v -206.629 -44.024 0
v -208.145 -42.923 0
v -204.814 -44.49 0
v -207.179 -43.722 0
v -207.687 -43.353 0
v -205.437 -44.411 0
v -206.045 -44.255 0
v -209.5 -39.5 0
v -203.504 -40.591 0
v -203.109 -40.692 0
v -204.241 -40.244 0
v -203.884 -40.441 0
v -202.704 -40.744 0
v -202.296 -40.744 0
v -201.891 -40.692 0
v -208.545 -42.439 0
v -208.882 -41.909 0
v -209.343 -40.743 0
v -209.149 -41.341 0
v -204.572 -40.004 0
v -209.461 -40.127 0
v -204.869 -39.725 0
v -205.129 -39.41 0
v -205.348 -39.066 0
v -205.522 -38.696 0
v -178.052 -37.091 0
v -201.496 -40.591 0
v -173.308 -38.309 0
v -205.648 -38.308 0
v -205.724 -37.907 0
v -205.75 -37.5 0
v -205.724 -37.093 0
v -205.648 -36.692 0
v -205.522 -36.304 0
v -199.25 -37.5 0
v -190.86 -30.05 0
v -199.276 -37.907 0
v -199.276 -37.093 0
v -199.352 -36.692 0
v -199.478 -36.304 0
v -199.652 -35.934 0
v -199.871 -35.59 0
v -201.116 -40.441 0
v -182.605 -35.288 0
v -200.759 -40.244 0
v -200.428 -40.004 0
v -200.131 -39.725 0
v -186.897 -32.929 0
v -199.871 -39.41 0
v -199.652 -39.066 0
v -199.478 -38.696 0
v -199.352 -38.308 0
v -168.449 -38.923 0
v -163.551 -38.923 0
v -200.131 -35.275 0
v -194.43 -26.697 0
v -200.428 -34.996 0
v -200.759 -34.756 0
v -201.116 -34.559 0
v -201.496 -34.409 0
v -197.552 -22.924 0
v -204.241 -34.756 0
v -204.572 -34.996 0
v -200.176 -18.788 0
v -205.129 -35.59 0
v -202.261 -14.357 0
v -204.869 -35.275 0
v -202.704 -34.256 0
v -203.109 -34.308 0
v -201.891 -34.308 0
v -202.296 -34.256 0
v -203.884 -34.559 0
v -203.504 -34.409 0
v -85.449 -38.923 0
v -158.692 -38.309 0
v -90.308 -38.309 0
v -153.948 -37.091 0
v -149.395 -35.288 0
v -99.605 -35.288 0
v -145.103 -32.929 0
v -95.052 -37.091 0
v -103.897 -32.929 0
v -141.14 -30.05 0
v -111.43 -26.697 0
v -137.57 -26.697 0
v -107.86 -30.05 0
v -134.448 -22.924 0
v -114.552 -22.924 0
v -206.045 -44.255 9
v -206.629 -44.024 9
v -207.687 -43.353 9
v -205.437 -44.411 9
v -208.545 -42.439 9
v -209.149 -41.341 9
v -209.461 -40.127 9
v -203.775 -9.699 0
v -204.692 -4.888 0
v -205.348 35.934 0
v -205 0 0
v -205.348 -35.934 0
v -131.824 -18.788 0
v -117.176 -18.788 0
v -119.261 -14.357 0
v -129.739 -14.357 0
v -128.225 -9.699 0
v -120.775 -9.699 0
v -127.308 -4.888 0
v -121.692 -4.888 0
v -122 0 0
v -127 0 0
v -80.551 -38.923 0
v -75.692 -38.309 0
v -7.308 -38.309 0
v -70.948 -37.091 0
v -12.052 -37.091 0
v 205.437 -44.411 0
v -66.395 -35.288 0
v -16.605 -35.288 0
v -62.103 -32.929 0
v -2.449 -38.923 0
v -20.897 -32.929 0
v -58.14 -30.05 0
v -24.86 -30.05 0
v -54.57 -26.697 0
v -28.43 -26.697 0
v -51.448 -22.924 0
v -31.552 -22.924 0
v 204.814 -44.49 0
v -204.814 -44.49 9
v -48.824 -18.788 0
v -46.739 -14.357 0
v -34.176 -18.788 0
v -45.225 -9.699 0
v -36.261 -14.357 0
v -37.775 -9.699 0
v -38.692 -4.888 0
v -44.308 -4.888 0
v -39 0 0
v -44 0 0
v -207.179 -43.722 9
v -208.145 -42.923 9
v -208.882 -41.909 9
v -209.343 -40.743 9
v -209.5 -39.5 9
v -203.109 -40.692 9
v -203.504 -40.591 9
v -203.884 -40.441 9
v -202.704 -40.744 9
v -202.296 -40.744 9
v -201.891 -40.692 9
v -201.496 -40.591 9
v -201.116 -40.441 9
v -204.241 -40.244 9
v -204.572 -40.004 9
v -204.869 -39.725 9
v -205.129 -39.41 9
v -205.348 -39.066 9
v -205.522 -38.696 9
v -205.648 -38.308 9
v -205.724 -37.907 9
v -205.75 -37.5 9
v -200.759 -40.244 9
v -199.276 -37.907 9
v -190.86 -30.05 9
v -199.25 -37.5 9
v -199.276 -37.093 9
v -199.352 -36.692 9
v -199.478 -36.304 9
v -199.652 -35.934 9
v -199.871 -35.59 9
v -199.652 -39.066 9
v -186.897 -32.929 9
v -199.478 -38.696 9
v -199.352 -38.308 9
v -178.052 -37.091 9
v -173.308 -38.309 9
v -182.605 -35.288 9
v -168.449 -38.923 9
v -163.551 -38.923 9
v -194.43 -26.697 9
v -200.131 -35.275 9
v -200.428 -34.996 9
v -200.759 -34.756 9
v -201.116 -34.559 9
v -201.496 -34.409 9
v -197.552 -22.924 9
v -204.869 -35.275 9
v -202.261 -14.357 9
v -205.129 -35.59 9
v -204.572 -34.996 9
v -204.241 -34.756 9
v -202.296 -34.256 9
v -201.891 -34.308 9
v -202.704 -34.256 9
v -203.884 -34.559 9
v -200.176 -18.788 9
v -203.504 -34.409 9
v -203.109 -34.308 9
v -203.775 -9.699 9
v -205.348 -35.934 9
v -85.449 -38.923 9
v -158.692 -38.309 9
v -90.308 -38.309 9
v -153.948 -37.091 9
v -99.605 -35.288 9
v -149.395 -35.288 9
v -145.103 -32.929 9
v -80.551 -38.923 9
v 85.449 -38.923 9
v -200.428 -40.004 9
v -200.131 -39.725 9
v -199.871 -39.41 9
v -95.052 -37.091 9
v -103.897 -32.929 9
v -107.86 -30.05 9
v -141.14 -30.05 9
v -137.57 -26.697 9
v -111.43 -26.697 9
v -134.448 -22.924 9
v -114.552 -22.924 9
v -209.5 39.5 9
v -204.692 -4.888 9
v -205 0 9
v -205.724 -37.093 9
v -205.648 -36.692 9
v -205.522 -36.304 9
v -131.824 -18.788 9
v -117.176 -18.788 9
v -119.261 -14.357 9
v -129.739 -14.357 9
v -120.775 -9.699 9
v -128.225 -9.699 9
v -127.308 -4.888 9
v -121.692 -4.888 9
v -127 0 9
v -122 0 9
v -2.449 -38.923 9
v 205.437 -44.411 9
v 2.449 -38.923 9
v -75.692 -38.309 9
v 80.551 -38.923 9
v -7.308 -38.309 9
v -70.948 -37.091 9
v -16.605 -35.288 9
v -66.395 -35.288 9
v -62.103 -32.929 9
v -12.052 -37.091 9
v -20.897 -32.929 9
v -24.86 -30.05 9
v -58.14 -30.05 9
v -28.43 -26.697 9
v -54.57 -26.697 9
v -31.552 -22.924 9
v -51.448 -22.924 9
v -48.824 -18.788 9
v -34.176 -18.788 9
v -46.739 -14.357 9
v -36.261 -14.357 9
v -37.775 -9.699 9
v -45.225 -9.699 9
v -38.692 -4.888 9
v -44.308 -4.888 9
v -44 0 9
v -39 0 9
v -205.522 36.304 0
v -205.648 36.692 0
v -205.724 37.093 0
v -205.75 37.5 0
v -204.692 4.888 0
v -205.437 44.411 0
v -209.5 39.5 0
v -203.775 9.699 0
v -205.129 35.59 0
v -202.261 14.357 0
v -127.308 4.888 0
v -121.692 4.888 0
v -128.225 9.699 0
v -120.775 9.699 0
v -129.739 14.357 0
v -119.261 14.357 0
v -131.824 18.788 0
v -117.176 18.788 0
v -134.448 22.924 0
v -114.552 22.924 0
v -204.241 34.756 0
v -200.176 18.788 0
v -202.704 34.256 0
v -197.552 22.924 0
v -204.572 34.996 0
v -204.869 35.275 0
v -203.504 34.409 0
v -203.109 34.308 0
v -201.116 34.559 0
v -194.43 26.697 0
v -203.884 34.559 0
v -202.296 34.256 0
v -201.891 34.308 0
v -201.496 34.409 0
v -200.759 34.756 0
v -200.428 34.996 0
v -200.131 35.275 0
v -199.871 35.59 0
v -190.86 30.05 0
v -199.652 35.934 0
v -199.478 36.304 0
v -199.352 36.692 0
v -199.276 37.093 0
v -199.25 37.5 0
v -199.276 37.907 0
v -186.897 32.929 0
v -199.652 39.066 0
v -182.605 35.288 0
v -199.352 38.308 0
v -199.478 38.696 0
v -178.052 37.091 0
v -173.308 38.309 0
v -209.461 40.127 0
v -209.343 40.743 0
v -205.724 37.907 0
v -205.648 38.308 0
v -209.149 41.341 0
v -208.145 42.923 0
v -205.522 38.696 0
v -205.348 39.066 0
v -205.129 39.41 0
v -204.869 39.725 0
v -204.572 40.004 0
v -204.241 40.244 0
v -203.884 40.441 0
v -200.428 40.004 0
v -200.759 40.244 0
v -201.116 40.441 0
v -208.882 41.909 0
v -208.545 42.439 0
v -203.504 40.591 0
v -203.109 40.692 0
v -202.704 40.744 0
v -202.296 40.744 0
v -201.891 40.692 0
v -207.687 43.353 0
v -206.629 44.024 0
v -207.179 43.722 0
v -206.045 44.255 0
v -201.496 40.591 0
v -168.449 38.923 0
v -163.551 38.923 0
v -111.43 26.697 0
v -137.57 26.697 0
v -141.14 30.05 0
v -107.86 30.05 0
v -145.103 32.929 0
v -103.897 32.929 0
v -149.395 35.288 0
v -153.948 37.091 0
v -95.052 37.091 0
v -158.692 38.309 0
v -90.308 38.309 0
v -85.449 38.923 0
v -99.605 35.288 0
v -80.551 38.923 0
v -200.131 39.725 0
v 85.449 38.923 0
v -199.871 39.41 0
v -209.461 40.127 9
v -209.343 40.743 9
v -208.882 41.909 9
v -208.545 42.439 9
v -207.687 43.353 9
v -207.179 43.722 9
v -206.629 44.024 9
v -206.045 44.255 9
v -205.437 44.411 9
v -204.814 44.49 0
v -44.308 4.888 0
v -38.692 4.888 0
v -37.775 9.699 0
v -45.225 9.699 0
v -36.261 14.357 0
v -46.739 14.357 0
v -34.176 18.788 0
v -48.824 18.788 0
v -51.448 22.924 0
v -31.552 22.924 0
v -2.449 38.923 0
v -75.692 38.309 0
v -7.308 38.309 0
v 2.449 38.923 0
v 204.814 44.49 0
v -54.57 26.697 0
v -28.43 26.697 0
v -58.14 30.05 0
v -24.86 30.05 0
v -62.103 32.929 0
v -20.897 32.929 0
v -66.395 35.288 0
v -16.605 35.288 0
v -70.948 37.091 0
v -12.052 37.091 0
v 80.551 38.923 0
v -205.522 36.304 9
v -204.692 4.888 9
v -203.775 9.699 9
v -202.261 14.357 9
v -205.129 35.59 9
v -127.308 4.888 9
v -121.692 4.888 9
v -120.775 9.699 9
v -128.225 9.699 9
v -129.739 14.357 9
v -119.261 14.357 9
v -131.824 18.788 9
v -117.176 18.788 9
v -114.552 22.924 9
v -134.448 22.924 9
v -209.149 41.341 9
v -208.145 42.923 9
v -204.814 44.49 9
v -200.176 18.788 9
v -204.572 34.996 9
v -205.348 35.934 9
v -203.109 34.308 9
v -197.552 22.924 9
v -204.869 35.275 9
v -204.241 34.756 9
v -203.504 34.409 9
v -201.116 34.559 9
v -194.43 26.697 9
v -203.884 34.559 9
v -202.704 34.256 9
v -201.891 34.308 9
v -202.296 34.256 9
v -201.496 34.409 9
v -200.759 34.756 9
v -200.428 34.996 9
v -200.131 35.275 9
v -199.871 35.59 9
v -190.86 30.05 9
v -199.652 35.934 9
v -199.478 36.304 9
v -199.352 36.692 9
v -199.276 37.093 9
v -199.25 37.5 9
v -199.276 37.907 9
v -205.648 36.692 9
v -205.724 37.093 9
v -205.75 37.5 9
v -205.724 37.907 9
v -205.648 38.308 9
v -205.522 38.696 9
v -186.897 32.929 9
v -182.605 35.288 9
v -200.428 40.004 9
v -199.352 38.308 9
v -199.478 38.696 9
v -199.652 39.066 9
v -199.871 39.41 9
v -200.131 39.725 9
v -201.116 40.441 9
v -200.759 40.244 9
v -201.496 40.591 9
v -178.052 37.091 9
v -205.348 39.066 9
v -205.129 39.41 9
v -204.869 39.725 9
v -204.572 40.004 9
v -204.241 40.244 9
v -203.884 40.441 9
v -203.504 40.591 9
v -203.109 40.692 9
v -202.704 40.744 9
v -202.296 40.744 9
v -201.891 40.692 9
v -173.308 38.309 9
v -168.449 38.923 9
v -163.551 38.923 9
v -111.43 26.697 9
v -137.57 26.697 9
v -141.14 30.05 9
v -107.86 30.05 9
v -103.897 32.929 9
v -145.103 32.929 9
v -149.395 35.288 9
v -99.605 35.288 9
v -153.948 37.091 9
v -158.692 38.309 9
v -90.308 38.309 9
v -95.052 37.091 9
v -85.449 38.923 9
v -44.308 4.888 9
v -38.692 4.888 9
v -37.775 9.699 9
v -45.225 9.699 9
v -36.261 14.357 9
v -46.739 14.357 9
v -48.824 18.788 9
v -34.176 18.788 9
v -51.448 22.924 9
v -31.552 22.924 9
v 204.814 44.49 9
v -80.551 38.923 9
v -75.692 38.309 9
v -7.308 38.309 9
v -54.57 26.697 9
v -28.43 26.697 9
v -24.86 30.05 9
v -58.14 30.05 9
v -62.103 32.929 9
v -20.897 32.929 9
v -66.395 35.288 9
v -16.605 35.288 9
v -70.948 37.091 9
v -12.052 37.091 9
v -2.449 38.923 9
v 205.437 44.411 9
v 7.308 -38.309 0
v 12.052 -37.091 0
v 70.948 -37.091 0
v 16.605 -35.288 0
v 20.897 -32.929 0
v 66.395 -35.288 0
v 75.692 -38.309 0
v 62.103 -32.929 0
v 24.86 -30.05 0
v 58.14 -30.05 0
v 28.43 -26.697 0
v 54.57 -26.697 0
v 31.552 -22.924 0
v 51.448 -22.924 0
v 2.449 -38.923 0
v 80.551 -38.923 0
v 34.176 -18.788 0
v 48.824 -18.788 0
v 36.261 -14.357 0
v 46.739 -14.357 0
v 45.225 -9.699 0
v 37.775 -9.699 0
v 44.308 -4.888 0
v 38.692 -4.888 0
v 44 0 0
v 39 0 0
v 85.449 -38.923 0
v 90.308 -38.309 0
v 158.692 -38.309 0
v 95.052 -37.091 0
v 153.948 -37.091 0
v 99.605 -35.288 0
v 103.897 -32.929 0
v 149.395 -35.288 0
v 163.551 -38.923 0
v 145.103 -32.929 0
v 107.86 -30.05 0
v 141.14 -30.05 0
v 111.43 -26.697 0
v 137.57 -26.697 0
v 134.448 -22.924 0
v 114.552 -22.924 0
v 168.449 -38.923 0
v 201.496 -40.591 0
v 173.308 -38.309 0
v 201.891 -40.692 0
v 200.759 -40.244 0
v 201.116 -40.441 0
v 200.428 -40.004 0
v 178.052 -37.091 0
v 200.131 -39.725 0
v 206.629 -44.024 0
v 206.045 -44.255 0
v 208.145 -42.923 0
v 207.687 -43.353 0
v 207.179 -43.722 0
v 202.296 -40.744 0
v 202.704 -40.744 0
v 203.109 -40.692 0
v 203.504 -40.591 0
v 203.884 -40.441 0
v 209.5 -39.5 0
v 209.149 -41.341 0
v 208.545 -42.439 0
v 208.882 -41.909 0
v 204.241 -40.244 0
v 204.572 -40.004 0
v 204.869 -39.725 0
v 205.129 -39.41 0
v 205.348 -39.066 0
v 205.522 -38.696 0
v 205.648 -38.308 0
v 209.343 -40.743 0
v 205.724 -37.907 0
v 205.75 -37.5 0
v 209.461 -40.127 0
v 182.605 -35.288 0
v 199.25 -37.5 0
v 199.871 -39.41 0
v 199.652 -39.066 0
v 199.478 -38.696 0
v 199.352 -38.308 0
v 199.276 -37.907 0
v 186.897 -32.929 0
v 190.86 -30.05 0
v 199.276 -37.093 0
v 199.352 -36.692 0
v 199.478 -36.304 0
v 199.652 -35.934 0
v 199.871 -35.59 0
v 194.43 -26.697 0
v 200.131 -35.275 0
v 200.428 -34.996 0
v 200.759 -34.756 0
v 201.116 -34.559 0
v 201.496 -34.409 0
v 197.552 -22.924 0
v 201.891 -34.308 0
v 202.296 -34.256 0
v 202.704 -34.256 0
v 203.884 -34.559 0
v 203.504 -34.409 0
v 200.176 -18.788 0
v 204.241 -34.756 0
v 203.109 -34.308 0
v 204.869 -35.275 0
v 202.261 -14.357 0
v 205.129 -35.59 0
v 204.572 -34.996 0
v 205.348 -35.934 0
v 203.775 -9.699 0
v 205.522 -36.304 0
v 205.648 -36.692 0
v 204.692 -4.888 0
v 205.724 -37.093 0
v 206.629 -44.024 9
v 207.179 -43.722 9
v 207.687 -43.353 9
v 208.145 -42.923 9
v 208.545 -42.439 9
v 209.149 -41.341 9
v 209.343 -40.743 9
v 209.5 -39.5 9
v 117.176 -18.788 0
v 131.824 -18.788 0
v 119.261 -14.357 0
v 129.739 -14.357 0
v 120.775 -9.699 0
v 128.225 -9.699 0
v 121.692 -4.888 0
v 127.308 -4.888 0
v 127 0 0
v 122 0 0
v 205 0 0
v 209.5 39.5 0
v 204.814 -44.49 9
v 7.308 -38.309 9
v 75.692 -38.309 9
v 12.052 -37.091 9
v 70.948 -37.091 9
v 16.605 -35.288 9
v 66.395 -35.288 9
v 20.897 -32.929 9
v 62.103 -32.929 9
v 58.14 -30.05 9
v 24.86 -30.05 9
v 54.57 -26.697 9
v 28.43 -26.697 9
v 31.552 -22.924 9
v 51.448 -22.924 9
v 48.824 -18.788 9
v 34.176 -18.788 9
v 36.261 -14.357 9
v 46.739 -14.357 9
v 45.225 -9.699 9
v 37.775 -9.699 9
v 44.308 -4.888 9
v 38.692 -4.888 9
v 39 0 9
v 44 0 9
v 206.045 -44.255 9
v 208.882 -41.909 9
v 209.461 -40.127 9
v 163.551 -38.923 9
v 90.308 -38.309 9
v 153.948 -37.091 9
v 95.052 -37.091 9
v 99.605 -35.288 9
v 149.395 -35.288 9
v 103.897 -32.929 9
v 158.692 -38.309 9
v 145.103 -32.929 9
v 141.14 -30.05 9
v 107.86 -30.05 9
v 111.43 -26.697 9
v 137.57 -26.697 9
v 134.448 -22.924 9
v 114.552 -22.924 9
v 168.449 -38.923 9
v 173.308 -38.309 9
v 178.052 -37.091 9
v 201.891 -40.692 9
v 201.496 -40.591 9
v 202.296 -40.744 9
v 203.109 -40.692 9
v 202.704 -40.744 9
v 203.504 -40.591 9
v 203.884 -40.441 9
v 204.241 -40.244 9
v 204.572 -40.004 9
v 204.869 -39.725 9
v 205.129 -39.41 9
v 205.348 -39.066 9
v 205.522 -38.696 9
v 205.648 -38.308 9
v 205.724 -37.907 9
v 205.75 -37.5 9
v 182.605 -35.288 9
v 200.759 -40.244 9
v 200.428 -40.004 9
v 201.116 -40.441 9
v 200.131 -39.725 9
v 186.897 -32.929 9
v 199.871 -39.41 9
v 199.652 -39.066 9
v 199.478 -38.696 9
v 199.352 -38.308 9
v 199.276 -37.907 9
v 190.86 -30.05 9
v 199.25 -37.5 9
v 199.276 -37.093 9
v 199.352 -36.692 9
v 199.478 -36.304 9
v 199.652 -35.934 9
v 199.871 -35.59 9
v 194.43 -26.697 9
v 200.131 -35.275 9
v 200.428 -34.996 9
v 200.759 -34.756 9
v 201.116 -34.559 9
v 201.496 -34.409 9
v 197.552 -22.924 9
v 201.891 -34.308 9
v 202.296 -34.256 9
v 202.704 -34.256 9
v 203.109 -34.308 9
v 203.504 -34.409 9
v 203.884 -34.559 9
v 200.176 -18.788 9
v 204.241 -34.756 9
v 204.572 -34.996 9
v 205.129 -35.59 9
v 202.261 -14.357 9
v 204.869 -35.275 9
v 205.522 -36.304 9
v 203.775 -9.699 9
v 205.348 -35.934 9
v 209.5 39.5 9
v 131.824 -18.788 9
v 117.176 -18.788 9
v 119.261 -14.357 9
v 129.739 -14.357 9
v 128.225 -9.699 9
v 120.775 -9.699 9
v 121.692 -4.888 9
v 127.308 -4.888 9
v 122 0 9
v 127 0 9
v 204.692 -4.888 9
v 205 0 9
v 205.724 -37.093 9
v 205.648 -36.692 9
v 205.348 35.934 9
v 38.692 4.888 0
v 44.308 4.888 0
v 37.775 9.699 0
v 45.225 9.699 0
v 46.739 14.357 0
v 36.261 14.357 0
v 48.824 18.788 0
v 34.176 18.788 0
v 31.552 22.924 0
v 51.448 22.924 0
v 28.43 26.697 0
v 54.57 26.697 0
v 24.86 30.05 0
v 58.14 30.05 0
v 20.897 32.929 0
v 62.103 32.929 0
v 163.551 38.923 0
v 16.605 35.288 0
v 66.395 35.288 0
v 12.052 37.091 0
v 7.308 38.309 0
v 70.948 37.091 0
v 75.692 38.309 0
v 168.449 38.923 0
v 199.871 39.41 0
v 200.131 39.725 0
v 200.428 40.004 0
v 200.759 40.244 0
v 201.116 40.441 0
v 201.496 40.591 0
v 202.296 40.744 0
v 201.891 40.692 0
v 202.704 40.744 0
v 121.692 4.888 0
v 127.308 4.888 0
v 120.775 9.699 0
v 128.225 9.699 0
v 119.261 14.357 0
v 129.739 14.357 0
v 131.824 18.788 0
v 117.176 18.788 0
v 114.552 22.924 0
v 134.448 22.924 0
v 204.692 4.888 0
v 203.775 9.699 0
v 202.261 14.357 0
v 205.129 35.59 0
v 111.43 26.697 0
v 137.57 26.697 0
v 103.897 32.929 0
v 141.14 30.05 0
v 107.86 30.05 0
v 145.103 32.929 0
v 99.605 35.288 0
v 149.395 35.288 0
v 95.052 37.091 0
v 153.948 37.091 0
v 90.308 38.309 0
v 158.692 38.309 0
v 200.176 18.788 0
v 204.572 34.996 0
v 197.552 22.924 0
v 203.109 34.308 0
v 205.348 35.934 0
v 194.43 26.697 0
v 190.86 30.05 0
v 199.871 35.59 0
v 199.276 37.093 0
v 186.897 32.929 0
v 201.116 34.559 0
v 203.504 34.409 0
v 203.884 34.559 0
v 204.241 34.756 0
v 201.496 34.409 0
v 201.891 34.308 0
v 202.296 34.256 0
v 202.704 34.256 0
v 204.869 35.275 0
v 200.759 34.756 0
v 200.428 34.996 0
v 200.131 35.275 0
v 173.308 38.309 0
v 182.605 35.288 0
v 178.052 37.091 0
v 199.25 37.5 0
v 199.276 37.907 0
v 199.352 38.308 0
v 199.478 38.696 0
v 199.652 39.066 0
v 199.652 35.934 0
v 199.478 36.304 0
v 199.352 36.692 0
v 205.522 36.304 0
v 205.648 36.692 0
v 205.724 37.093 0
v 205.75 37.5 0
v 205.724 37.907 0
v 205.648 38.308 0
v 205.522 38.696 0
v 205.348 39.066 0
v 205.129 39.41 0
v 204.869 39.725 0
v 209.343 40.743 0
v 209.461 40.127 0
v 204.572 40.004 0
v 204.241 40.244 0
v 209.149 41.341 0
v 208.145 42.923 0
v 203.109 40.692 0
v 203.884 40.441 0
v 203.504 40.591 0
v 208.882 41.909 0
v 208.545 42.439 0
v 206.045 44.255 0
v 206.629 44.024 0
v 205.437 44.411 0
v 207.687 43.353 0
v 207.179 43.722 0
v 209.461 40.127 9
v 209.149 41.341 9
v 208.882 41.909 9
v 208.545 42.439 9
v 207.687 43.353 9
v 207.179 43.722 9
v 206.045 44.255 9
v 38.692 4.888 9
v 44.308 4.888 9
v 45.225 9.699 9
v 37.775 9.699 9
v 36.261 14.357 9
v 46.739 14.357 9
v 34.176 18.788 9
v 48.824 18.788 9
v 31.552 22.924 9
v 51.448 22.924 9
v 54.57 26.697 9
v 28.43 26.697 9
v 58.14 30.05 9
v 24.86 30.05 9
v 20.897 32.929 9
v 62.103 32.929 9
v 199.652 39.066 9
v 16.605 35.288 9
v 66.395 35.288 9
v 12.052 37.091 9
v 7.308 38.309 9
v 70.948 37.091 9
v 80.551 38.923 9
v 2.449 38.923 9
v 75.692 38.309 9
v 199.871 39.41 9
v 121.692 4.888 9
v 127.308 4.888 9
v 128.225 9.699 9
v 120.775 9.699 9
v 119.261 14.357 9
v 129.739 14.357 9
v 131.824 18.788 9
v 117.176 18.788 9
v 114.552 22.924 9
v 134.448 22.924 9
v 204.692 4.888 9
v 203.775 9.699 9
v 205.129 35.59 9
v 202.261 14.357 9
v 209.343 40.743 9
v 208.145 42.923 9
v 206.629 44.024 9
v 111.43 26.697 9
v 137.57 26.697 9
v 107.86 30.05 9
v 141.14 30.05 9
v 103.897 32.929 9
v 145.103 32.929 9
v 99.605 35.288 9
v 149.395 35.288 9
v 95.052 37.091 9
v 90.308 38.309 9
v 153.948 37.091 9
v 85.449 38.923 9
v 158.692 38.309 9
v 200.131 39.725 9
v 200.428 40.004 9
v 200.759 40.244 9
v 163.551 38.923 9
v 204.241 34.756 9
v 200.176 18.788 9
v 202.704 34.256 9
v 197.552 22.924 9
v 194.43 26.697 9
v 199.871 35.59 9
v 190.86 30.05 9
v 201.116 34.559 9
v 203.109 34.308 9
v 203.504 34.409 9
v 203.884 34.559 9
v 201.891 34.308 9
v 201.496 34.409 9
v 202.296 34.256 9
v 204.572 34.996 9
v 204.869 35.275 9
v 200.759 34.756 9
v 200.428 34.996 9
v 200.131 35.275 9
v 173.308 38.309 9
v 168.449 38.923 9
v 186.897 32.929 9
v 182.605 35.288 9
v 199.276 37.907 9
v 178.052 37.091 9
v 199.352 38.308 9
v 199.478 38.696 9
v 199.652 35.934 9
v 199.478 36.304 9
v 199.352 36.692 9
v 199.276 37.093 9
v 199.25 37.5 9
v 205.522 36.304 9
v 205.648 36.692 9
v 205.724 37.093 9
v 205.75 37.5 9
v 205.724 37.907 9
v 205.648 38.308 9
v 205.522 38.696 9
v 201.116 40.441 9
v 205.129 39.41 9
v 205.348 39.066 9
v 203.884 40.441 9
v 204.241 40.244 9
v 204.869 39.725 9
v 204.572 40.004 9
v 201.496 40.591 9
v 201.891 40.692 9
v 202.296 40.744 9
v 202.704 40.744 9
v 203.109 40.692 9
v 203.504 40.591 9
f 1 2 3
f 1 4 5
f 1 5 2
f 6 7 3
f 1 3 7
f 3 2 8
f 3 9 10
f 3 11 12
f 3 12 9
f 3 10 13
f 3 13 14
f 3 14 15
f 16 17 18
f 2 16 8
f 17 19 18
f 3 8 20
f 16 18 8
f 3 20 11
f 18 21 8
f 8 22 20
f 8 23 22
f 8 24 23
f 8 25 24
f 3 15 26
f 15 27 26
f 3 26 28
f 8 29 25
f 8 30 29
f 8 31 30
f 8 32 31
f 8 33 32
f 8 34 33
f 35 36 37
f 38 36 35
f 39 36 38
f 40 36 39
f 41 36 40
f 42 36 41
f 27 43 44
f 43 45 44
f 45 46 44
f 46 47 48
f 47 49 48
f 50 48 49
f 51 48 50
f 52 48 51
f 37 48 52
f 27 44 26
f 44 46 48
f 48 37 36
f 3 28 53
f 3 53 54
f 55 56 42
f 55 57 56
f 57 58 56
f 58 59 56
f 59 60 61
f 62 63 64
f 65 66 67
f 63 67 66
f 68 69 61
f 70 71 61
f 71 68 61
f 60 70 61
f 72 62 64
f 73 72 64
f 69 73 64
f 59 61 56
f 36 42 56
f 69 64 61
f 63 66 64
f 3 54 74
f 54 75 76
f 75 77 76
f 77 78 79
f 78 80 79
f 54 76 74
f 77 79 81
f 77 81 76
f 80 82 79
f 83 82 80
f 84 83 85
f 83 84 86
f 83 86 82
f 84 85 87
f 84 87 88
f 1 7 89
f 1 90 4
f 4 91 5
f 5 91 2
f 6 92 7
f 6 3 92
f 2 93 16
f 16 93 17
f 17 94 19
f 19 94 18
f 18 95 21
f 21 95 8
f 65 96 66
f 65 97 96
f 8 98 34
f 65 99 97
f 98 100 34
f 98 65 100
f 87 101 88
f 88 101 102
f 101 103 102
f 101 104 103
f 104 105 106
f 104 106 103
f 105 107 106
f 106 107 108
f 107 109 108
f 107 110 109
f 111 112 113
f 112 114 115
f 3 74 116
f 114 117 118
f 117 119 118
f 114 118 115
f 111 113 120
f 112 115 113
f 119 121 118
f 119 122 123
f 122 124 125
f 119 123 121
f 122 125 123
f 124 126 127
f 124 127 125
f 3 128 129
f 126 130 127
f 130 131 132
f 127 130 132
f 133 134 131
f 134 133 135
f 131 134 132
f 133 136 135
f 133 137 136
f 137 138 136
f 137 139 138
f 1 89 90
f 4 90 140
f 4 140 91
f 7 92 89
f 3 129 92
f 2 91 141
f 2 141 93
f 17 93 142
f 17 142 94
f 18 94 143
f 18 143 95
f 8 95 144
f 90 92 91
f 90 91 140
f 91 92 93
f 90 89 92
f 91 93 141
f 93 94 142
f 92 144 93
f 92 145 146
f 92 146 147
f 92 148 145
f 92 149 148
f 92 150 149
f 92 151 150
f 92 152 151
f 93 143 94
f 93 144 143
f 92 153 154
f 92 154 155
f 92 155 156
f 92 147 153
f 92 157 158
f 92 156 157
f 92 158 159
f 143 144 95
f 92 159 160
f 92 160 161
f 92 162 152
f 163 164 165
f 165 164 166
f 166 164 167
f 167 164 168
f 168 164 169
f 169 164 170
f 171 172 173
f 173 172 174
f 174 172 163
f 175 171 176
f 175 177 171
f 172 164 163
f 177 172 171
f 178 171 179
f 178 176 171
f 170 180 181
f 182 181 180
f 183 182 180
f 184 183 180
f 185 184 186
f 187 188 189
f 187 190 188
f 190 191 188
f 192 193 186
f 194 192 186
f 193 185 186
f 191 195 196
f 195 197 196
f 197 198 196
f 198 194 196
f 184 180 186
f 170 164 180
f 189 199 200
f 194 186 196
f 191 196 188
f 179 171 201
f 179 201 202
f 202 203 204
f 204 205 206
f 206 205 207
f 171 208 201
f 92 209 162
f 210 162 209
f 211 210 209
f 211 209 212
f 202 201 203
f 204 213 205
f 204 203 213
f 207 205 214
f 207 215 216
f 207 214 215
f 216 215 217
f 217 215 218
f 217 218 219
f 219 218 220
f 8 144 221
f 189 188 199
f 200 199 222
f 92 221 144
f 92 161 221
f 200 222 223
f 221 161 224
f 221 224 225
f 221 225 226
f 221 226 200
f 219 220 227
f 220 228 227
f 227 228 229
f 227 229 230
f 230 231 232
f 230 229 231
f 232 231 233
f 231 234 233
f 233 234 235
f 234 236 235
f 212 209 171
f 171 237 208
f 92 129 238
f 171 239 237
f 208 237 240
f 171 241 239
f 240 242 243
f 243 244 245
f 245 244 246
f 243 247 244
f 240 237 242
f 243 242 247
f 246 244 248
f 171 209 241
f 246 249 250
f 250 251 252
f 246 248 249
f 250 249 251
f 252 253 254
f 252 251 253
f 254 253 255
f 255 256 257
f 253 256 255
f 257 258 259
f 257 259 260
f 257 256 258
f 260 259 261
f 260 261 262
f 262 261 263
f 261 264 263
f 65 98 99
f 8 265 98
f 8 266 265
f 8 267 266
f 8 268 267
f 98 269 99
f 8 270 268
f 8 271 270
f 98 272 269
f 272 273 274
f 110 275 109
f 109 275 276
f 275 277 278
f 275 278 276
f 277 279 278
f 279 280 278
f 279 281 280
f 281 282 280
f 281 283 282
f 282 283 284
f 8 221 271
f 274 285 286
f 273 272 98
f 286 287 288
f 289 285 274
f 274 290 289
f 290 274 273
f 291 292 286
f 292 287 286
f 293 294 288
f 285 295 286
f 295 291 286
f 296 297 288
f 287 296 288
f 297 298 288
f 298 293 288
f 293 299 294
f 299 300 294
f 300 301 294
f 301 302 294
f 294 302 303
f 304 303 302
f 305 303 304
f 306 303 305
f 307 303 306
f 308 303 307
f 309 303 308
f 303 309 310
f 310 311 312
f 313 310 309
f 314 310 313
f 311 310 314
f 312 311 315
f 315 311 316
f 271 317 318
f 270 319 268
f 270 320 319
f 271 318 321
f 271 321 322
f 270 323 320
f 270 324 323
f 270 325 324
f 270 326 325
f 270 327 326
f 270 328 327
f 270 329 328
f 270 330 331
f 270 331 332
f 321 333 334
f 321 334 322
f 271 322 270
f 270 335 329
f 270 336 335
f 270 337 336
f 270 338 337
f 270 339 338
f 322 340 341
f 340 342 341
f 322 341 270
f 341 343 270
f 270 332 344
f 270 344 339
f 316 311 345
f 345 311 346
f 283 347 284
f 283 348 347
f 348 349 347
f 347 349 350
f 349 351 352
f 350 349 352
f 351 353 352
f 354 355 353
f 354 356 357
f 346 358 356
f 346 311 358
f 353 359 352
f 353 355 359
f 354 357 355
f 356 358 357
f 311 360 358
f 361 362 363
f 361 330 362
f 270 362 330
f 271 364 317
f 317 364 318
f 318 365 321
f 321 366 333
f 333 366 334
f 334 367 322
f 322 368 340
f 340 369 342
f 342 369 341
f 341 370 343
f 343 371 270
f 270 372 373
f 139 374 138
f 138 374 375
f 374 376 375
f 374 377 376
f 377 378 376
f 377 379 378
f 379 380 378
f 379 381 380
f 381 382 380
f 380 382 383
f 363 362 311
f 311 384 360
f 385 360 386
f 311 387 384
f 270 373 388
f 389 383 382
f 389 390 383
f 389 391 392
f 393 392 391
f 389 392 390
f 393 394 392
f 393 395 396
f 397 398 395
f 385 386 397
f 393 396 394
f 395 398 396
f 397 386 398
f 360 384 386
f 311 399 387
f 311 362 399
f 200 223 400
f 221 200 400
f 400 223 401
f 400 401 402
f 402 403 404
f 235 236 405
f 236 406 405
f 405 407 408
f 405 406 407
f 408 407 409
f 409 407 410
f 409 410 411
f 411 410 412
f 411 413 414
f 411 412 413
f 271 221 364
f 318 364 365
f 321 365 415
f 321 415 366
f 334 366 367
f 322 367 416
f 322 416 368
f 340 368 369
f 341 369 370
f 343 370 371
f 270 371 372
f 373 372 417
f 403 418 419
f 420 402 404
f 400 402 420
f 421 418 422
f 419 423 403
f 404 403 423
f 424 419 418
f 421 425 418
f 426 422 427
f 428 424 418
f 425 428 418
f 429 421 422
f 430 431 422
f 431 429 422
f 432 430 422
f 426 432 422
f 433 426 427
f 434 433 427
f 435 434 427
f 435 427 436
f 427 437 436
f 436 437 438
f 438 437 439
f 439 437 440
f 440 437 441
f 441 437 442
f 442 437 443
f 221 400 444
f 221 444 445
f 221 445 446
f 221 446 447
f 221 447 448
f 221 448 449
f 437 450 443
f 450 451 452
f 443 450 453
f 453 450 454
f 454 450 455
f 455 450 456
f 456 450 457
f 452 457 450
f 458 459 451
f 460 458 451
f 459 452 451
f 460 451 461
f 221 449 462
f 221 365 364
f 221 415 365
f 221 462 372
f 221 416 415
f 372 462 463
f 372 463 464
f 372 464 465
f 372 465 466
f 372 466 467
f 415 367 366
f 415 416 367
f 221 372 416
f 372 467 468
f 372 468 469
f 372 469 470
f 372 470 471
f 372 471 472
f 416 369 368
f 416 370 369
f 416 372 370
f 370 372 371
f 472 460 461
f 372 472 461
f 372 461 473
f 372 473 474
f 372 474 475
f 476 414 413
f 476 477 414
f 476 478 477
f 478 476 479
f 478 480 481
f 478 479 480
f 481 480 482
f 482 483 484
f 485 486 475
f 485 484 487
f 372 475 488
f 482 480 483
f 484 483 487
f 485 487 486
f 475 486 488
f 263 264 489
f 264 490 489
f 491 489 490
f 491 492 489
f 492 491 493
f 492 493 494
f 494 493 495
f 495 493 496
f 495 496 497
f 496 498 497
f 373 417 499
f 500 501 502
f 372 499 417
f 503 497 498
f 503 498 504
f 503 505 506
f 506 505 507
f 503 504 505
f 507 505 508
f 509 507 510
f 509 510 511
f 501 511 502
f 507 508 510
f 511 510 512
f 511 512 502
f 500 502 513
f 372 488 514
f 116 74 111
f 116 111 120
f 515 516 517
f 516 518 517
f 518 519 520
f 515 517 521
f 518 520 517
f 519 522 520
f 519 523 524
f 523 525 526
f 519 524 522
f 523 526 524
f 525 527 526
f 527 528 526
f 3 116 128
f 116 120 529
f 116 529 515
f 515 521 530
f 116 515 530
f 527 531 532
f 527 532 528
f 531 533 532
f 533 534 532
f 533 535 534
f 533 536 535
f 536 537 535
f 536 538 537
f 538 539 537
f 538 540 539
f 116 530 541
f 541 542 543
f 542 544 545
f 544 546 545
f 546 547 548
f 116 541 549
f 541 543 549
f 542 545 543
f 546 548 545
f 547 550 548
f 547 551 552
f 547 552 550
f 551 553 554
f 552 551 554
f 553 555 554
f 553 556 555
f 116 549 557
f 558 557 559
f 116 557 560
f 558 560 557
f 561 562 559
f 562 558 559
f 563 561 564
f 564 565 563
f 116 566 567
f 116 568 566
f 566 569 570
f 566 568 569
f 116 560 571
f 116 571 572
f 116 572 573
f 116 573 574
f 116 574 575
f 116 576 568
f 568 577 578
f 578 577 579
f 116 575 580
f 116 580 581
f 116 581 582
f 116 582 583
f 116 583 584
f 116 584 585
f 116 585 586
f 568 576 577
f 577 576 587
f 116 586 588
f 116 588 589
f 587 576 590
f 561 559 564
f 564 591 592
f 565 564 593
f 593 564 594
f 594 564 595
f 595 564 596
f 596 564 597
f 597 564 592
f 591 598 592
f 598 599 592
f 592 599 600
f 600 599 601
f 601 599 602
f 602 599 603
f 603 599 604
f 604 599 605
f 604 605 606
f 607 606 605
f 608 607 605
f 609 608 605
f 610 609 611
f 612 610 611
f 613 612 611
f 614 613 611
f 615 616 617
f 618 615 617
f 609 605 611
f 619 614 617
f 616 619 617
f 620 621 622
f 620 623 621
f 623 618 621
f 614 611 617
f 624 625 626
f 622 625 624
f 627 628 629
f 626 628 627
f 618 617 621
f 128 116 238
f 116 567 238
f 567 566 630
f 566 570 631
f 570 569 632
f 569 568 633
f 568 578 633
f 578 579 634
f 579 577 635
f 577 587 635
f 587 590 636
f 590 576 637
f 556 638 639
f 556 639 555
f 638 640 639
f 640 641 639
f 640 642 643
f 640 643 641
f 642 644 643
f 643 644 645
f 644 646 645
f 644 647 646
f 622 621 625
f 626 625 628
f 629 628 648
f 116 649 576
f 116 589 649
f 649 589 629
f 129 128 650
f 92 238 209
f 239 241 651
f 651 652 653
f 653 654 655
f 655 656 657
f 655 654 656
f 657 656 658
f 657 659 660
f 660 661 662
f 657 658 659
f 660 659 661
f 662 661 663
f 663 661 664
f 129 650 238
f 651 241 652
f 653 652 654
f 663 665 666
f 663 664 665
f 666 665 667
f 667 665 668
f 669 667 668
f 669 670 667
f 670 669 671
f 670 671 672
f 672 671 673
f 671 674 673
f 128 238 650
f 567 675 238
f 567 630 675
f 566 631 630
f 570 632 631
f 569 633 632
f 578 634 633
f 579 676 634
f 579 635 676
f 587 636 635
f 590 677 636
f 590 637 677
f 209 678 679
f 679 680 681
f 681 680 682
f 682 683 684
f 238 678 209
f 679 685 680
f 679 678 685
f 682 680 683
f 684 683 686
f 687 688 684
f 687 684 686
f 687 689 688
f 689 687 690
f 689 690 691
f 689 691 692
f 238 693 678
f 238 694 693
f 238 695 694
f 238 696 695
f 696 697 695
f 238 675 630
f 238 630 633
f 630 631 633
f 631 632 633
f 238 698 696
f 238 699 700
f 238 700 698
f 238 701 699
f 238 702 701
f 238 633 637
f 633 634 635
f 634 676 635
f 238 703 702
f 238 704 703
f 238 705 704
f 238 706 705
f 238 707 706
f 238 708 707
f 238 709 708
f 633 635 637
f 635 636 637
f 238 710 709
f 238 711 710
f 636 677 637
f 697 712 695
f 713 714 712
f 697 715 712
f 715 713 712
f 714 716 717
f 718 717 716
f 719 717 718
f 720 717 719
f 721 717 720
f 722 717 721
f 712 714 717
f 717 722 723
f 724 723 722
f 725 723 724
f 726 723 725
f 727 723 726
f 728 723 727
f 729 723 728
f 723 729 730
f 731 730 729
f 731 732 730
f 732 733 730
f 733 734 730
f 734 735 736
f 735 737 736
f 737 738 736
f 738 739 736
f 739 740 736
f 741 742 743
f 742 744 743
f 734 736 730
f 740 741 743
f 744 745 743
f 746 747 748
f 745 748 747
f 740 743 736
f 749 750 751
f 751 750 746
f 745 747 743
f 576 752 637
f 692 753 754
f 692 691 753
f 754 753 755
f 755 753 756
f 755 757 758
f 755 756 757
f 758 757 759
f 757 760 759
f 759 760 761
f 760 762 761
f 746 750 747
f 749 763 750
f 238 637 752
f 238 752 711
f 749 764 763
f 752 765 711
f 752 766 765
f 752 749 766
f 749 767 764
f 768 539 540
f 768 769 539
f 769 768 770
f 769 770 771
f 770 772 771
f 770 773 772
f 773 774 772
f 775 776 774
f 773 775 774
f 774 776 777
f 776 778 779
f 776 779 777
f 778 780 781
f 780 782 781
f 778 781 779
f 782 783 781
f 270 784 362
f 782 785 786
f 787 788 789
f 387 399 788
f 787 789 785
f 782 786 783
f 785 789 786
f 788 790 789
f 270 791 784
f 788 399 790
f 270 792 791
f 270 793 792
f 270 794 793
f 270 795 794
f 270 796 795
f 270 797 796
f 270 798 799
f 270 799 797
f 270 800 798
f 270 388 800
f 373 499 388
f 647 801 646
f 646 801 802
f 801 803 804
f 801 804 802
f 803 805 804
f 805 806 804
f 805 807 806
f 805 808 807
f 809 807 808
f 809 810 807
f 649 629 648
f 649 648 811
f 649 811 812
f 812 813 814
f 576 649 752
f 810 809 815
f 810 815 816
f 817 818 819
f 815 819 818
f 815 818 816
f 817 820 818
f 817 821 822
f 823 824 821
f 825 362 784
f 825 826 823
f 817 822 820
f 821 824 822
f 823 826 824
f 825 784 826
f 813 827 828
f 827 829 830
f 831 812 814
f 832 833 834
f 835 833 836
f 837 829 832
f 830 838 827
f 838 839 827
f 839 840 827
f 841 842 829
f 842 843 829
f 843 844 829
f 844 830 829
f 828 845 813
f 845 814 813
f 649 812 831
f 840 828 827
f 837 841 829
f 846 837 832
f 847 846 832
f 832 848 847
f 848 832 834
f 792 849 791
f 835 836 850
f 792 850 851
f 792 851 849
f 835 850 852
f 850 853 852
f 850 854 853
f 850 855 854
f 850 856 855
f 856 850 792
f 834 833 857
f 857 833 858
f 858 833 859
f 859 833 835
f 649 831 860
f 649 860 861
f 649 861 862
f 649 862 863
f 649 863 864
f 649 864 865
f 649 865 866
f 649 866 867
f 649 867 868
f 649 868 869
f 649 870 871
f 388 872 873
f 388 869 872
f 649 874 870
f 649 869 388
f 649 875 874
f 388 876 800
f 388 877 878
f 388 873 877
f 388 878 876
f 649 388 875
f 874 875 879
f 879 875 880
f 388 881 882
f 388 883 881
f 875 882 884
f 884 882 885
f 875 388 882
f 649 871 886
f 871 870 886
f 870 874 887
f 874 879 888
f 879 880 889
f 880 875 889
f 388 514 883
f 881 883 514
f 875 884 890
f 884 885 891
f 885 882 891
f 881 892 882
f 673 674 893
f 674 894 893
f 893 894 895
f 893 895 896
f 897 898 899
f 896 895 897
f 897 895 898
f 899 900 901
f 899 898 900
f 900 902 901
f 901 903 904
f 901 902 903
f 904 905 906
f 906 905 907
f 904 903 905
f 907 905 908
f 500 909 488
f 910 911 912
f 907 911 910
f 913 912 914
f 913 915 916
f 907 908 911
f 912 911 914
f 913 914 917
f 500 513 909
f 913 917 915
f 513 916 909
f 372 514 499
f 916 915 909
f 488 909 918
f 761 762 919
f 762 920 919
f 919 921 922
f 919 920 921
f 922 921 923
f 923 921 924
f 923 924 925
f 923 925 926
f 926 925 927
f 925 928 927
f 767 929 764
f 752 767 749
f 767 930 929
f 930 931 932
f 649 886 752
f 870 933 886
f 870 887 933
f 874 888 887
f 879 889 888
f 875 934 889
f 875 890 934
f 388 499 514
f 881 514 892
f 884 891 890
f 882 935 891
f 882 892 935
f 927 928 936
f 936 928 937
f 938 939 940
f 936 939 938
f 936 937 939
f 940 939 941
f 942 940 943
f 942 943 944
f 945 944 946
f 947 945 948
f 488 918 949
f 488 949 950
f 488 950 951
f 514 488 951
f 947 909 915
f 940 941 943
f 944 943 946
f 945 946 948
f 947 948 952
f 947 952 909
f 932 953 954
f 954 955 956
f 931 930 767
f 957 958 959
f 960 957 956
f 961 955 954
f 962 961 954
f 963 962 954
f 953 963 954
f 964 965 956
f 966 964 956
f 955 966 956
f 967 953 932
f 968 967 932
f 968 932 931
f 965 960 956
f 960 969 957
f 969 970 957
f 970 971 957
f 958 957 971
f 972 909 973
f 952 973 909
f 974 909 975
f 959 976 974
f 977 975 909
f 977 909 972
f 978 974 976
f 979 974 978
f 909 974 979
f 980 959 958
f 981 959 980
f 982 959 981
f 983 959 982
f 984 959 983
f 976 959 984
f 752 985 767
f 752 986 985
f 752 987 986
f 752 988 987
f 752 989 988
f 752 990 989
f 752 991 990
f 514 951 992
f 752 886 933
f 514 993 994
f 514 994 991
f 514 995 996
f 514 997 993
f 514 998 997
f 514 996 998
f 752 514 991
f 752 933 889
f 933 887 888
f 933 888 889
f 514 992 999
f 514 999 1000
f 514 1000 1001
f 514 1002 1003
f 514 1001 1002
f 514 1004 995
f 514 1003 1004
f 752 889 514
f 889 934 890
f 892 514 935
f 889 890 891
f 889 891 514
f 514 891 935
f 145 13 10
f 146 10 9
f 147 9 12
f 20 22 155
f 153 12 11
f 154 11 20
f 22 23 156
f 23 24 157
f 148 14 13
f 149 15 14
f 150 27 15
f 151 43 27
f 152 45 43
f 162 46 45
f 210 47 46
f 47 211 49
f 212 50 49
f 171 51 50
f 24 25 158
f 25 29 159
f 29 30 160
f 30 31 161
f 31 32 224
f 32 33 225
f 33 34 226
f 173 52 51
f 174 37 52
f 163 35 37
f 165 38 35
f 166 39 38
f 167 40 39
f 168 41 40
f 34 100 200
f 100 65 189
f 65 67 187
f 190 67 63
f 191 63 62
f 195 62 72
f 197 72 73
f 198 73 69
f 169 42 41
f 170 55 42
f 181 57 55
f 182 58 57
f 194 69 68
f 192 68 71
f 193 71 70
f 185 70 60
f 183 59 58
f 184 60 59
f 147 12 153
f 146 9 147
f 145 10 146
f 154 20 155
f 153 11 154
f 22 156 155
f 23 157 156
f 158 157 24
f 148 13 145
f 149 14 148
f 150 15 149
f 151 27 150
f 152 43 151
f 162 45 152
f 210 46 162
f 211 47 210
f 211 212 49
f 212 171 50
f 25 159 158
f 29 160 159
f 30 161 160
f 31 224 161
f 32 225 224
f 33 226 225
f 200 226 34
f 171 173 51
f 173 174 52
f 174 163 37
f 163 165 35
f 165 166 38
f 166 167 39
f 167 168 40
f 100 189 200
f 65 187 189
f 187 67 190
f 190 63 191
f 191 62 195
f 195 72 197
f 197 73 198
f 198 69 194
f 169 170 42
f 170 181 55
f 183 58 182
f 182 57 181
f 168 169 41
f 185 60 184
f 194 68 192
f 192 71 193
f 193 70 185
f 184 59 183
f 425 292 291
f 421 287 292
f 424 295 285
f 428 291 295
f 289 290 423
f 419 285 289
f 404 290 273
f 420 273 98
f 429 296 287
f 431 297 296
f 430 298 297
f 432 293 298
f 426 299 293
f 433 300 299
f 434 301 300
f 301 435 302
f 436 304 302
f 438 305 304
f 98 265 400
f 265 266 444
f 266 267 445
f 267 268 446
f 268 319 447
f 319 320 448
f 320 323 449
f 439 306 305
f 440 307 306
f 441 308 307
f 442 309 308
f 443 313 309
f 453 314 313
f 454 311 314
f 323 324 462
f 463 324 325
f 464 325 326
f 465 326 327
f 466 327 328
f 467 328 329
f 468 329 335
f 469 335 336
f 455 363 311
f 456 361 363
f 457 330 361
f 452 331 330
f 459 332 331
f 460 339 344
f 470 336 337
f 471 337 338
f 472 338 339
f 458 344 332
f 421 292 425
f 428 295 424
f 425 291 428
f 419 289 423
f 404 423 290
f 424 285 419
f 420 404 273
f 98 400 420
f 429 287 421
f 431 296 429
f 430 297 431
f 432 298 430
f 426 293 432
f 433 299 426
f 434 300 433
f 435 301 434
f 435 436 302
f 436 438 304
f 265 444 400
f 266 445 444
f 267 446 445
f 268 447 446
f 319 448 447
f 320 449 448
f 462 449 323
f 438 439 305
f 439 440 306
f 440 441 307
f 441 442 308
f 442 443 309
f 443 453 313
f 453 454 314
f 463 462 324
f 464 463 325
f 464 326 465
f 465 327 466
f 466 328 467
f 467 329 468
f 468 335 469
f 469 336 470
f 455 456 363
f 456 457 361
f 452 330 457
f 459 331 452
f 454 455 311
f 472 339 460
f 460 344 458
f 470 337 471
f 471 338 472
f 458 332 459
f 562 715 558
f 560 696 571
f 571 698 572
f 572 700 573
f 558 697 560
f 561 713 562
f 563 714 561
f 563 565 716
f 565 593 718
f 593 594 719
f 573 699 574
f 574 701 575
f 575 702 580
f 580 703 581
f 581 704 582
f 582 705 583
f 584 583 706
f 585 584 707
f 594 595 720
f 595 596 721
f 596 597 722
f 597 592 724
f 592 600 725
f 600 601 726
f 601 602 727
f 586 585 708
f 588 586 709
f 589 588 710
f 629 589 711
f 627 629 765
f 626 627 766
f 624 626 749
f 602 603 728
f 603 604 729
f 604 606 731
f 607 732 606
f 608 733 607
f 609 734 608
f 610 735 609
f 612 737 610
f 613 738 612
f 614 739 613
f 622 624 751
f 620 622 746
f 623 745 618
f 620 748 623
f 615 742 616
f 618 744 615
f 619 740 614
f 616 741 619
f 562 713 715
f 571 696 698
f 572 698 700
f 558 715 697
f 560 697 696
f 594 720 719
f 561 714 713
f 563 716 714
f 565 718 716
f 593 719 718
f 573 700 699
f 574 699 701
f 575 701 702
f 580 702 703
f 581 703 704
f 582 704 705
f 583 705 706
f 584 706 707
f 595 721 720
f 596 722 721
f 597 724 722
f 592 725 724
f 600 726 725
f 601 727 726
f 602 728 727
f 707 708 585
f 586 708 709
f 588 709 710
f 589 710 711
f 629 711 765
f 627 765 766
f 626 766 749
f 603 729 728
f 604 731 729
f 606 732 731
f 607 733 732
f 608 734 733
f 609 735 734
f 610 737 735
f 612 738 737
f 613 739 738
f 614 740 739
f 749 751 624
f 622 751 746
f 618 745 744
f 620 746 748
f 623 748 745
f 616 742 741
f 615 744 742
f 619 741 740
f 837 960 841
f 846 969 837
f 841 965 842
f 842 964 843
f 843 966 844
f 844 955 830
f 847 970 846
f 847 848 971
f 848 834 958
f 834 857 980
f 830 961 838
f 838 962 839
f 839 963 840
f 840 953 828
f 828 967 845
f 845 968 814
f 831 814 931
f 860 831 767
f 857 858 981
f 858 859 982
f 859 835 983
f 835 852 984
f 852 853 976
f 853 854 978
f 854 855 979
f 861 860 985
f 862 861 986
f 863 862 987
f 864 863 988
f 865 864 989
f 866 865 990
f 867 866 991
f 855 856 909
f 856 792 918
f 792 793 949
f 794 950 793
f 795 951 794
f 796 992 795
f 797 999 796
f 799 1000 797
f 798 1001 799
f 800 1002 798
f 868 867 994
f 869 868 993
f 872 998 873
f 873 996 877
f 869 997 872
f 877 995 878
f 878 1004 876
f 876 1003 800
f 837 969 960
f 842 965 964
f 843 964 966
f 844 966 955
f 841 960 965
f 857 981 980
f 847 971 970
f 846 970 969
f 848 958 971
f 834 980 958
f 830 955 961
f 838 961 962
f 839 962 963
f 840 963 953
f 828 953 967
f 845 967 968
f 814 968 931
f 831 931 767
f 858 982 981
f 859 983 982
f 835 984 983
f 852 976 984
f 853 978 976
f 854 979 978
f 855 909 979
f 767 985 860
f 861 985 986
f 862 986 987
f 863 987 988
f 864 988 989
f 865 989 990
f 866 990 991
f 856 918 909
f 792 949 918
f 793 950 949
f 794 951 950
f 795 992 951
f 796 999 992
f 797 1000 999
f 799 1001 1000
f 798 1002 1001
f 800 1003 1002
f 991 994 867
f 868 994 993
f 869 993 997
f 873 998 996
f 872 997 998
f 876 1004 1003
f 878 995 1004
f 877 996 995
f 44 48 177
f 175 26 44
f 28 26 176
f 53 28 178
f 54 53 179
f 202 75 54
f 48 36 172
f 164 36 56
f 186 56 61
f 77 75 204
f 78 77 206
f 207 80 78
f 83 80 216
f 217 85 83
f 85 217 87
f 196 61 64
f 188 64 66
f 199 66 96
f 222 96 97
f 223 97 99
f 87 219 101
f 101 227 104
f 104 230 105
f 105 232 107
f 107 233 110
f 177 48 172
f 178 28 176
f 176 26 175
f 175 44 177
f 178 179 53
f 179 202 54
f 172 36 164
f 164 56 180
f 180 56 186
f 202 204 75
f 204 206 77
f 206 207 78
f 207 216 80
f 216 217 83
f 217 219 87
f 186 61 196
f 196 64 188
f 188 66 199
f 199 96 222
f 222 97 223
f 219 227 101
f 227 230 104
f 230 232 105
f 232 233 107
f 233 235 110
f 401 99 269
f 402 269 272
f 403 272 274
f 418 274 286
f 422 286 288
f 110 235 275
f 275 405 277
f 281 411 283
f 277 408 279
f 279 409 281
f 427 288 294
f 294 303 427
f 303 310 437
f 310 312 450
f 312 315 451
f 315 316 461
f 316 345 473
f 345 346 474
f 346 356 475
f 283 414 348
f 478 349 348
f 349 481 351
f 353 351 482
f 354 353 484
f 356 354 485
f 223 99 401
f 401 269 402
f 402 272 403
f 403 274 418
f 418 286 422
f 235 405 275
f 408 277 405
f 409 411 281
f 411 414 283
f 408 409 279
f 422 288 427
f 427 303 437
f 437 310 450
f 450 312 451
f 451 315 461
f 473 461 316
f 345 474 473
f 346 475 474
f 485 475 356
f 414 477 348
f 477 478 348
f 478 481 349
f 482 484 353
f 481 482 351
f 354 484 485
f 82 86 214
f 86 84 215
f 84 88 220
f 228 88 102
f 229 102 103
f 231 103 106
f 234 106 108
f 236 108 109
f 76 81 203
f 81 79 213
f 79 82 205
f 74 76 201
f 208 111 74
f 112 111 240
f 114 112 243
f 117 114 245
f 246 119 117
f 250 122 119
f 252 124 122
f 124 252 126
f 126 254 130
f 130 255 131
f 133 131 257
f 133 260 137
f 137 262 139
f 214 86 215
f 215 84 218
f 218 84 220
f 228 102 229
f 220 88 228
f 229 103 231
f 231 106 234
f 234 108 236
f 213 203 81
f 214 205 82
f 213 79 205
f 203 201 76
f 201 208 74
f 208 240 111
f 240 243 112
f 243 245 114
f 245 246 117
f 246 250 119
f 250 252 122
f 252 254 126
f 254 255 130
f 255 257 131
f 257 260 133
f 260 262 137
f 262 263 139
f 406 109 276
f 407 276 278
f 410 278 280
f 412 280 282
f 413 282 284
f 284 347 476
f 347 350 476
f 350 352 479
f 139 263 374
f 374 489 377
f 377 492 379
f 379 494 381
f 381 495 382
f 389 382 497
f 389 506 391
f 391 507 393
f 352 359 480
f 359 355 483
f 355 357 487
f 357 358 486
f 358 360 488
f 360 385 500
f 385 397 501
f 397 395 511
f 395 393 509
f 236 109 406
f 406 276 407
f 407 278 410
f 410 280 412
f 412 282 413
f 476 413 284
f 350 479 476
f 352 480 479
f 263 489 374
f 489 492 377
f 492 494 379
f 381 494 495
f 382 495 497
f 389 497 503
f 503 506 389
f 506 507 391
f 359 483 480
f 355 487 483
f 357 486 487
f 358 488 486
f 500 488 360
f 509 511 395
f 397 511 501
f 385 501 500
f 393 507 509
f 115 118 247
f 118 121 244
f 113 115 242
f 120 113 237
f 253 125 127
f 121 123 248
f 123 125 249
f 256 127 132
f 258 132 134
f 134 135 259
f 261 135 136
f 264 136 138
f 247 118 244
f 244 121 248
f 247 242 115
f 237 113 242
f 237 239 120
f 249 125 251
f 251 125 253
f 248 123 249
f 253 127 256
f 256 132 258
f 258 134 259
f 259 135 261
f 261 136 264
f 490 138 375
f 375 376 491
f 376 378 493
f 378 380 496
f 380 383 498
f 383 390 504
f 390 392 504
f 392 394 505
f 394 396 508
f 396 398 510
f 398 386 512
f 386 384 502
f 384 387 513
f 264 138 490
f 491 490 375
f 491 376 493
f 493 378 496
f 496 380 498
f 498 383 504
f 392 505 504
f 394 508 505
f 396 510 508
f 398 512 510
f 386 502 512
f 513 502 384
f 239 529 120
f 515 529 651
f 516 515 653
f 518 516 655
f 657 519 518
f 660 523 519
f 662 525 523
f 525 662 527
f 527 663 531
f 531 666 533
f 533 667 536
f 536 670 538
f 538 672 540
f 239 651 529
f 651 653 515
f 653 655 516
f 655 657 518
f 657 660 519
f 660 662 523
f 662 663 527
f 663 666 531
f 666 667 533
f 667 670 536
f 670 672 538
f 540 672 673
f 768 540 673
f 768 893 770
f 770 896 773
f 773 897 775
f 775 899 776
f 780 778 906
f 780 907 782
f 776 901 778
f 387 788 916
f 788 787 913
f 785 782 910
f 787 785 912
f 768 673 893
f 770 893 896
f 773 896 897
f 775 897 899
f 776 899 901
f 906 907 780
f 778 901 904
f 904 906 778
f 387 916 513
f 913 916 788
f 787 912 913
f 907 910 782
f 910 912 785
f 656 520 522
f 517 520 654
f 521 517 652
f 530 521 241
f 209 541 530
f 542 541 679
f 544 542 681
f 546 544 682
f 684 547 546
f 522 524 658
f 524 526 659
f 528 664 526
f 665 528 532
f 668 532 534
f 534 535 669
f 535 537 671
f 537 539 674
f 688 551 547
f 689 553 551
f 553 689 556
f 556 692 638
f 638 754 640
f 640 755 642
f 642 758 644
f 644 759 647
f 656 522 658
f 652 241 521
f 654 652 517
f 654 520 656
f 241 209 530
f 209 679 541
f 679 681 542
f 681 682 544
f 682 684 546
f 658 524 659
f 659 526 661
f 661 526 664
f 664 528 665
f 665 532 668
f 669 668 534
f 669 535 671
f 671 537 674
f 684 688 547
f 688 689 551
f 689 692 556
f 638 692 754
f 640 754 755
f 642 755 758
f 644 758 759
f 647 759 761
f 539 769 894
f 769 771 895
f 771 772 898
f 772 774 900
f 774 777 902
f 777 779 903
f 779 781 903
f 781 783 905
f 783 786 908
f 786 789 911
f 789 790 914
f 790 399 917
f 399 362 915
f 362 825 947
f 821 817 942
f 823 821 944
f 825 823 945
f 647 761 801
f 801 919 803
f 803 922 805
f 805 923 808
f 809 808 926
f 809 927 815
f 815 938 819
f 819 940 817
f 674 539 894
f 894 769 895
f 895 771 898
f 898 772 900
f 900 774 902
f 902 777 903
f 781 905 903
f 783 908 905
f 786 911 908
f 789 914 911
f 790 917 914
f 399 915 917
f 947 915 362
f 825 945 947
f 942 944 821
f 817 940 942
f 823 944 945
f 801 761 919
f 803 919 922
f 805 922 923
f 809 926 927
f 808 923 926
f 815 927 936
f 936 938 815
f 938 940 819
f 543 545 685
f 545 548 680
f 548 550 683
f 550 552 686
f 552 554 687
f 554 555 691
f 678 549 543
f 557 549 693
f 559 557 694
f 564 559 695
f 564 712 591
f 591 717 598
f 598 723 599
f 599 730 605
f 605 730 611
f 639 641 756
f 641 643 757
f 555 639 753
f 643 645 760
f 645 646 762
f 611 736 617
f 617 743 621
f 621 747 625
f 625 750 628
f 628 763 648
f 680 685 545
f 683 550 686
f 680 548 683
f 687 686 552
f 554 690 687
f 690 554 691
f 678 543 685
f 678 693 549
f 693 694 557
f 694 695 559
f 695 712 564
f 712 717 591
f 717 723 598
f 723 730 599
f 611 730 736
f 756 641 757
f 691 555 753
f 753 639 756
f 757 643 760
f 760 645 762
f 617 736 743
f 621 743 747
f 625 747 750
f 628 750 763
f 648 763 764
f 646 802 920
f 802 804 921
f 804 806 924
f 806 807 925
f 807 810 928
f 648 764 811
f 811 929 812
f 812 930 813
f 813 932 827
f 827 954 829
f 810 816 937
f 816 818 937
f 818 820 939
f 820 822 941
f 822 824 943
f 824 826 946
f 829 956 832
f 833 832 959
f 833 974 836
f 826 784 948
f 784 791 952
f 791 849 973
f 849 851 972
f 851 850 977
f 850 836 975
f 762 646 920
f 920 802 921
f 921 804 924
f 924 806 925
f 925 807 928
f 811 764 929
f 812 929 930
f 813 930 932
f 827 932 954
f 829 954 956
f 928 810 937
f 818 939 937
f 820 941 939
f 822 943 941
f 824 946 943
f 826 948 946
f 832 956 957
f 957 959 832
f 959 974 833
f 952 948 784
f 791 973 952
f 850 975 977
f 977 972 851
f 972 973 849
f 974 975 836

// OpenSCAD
$fn = 50;

difference() {
	union() {
		hull() {
			translate(v = [-204.5, 39.5, 0]) {
				cylinder(h = 9, r = 5);
			}
			translate(v = [204.5, 39.5, 0]) {
				cylinder(h = 9, r = 5);
			}
			translate(v = [-204.5, -39.5, 0]) {
				cylinder(h = 9, r = 5);
			}
			translate(v = [204.5, -39.5, 0]) {
				cylinder(h = 9, r = 5);
			}
		}
	}
	union() {
		translate(v = [-202.5, -37.5, -100.0]) {
			cylinder(h = 200, r = 3.25);
		}
		translate(v = [-202.5, 37.5, -100.0]) {
			cylinder(h = 200, r = 3.25);
		}
		translate(v = [202.5, -37.5, -100.0]) {
			cylinder(h = 200, r = 3.25);
		}
		translate(v = [202.5, 37.5, -100.0]) {
			cylinder(h = 200, r = 3.25);
		}
		translate(v = [-202.5, -37.5, -100.0]) {
			cylinder(h = 200, r = 1.8);
		}
		translate(v = [-202.5, 37.5, -100.0]) {
			cylinder(h = 200, r = 1.8);
		}
		translate(v = [202.5, -37.5, -100.0]) {
			cylinder(h = 200, r = 1.8);
		}
		translate(v = [202.5, 37.5, -100.0]) {
			cylinder(h = 200, r = 1.8);
		}
		translate(v = [-166.0, 0, 0.0]) {
			cylinder(h = 9, r = 39.0);
		}
		translate(v = [-83.0, 0, 0.0]) {
			cylinder(h = 9, r = 39.0);
		}
		cylinder(h = 9, r = 39.0);
		translate(v = [83.0, 0, 0.0]) {
			cylinder(h = 9, r = 39.0);
		}
		translate(v = [166.0, 0, 0.0]) {
			cylinder(h = 9, r = 39.0);
		}
	}
}
